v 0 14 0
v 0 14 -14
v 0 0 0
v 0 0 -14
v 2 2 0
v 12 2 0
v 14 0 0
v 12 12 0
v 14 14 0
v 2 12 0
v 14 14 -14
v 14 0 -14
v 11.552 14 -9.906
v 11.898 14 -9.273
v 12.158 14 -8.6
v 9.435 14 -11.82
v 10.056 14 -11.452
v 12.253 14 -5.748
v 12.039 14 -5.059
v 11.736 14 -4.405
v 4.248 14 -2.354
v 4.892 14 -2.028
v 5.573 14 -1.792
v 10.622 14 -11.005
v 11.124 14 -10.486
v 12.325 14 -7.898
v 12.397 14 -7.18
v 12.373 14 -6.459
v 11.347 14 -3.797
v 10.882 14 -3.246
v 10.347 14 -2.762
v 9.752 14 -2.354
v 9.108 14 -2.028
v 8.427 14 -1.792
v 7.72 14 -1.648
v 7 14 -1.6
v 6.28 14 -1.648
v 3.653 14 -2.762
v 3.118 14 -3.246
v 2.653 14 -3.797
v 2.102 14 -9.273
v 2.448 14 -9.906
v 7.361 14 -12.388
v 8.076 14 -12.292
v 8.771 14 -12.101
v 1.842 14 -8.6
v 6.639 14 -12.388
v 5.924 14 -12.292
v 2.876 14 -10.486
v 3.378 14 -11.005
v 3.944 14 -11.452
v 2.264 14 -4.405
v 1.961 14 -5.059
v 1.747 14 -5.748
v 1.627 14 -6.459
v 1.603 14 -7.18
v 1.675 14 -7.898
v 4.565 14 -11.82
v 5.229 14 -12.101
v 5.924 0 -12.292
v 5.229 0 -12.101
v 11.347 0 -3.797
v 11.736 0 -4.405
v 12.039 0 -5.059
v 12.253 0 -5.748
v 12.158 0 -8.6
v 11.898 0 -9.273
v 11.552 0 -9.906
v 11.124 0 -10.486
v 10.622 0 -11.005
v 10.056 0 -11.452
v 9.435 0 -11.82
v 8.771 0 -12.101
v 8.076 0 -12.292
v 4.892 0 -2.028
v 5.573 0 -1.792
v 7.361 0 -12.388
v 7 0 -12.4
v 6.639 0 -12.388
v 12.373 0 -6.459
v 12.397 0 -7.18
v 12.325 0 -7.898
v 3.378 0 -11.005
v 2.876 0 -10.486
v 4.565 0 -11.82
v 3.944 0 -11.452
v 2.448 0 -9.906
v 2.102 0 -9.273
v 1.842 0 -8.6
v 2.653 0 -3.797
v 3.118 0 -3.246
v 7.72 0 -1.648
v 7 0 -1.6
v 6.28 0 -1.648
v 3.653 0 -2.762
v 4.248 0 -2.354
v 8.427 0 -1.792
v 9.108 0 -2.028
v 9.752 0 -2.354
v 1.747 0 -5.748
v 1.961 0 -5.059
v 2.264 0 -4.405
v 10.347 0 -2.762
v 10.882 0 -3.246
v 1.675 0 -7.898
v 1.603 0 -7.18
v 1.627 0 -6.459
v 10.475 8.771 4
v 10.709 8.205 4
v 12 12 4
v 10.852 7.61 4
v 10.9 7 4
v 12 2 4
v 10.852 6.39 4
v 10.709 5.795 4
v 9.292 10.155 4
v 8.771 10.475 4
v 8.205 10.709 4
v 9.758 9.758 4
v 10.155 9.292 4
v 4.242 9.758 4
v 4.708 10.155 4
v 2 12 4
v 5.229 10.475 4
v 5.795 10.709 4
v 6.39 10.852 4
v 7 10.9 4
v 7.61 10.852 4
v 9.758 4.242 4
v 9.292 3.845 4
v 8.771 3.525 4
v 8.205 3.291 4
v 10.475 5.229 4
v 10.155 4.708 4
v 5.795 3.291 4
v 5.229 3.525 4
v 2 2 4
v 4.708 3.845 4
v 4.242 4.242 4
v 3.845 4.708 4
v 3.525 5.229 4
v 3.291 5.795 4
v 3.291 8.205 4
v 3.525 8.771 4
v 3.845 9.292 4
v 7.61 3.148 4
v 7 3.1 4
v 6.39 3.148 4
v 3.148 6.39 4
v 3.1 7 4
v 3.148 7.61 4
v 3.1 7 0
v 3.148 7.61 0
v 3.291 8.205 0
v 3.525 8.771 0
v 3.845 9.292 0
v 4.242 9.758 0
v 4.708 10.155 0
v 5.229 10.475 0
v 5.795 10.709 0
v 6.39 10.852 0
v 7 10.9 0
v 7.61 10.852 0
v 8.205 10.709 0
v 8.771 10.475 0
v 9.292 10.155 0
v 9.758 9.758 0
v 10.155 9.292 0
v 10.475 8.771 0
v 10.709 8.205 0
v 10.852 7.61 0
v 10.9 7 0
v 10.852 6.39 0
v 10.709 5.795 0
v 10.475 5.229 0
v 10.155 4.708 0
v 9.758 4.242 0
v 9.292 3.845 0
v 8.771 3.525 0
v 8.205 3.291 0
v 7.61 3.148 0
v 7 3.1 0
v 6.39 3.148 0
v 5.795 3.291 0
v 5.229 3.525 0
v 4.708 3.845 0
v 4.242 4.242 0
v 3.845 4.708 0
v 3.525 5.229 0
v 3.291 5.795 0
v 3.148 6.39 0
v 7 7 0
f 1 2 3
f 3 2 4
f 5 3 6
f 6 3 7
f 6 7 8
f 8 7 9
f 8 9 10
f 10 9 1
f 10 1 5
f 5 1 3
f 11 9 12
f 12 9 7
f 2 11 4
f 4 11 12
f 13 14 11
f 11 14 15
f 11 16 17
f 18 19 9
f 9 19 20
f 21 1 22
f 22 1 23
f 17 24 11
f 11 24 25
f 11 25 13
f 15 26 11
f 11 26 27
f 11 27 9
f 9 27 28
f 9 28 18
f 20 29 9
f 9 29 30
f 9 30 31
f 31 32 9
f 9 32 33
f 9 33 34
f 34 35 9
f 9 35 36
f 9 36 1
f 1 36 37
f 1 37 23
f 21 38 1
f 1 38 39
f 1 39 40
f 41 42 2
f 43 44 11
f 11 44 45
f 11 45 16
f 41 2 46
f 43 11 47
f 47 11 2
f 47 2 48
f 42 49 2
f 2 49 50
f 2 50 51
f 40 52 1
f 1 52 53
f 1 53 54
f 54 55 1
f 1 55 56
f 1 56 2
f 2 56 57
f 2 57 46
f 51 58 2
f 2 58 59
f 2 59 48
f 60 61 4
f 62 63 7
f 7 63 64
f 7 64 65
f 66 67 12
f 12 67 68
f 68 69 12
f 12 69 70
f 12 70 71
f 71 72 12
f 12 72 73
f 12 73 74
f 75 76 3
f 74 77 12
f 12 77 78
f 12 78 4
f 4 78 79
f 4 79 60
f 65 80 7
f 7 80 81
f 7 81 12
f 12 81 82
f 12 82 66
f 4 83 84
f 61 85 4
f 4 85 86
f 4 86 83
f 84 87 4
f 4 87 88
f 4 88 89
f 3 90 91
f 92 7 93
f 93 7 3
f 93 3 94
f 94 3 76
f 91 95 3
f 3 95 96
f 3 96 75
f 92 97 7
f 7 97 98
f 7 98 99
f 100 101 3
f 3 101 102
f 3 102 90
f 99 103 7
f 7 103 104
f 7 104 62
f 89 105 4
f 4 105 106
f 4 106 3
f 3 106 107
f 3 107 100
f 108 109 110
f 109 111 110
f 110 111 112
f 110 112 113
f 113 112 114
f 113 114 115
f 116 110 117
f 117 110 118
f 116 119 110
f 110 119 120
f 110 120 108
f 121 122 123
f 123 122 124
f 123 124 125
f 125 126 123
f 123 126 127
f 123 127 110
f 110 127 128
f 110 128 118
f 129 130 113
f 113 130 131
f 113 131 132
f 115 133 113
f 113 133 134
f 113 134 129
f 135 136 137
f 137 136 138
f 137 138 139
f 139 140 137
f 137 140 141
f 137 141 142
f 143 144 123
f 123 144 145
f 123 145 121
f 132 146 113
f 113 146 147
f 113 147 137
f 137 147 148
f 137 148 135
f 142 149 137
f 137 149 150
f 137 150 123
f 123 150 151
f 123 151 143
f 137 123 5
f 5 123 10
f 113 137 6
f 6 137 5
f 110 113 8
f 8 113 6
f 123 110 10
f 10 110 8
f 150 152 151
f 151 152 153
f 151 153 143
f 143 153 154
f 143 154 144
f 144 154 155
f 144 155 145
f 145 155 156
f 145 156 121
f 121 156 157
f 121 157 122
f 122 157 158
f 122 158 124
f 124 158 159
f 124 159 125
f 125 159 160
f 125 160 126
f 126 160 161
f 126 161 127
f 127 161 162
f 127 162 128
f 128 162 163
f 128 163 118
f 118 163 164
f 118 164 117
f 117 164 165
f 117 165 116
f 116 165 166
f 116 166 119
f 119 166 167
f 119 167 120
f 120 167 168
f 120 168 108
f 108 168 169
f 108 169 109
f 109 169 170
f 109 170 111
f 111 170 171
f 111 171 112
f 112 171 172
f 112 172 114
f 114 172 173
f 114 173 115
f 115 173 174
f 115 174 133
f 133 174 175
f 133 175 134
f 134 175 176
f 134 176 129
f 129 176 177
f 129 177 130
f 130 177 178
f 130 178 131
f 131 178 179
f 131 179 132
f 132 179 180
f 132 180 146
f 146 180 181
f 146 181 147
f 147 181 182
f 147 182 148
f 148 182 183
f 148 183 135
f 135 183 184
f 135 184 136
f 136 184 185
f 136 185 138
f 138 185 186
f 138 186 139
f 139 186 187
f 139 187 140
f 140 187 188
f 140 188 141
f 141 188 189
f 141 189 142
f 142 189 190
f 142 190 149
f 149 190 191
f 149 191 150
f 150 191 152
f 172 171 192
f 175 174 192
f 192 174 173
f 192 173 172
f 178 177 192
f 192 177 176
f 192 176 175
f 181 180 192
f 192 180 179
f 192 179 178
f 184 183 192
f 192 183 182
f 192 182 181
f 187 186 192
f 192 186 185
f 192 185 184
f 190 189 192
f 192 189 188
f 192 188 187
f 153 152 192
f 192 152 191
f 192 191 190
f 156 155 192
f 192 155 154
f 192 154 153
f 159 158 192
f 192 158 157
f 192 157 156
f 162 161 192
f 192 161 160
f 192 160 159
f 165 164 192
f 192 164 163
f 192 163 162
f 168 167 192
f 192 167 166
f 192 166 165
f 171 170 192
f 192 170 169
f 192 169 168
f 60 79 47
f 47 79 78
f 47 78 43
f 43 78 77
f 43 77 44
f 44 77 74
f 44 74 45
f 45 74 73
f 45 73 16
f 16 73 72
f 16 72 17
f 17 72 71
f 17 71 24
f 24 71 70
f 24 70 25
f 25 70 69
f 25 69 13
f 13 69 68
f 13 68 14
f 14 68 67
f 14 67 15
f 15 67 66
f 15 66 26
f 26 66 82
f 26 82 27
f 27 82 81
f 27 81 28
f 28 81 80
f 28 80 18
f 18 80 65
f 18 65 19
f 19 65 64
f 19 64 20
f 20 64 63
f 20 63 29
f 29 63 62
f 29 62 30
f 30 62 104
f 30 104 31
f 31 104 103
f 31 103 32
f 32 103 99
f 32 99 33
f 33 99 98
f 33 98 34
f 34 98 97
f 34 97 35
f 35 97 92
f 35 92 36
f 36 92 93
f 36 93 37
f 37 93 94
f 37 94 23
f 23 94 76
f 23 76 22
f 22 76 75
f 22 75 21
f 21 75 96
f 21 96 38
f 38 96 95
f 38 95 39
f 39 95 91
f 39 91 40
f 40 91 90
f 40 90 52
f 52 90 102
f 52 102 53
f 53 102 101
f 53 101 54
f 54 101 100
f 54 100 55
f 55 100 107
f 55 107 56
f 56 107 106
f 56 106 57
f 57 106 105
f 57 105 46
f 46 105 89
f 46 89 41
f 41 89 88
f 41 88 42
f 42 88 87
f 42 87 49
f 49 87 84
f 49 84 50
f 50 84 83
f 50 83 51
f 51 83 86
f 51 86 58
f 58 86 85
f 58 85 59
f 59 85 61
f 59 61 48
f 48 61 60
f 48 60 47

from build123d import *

# Parameters (mm, degrees)
SKETCH_1_W          = 14
SKETCH_1_H          = 14
EXTRUDE_1_DEPTH     = 14
SKETCH_2_W          = 10
SKETCH_2_H          = 10
SKETCH_2_R          = 3.9
EXTRUDE_2_DEPTH     = 4
SKETCH_3_R          = 5.4
CUT_EXTRUDE_1_DEPTH = 14


with BuildPart() as part:
    # 草图1 → 凸台-拉伸1 (new body)
    with BuildSketch(Plane(origin=(0, 0, 0), x_dir=(1, 0, 0), z_dir=(0, 1, 0))):
        with Locations((7, 7)):
            Rectangle(SKETCH_1_W, SKETCH_1_H)
    extrude(amount=EXTRUDE_1_DEPTH)

    # 草图2 → 凸台-拉伸2 (add)
    with BuildSketch(Plane.XY):
        with Locations((7, 7)):
            Rectangle(SKETCH_2_W, SKETCH_2_H)
        with Locations((7, 7)):
            Circle(SKETCH_2_R, mode=Mode.SUBTRACT)
    extrude(amount=EXTRUDE_2_DEPTH)

    # 草图3 → 切除-拉伸1 (cut)
    with BuildSketch(Plane(origin=(0, 14, 0), x_dir=(1, 0, 0), z_dir=(0, 1, 0))):
        with Locations(Location((7, 7, 0), (0, 0, 270))):
            Circle(SKETCH_3_R)
    extrude(amount=-CUT_EXTRUDE_1_DEPTH, mode=Mode.SUBTRACT)


solid = part.part
